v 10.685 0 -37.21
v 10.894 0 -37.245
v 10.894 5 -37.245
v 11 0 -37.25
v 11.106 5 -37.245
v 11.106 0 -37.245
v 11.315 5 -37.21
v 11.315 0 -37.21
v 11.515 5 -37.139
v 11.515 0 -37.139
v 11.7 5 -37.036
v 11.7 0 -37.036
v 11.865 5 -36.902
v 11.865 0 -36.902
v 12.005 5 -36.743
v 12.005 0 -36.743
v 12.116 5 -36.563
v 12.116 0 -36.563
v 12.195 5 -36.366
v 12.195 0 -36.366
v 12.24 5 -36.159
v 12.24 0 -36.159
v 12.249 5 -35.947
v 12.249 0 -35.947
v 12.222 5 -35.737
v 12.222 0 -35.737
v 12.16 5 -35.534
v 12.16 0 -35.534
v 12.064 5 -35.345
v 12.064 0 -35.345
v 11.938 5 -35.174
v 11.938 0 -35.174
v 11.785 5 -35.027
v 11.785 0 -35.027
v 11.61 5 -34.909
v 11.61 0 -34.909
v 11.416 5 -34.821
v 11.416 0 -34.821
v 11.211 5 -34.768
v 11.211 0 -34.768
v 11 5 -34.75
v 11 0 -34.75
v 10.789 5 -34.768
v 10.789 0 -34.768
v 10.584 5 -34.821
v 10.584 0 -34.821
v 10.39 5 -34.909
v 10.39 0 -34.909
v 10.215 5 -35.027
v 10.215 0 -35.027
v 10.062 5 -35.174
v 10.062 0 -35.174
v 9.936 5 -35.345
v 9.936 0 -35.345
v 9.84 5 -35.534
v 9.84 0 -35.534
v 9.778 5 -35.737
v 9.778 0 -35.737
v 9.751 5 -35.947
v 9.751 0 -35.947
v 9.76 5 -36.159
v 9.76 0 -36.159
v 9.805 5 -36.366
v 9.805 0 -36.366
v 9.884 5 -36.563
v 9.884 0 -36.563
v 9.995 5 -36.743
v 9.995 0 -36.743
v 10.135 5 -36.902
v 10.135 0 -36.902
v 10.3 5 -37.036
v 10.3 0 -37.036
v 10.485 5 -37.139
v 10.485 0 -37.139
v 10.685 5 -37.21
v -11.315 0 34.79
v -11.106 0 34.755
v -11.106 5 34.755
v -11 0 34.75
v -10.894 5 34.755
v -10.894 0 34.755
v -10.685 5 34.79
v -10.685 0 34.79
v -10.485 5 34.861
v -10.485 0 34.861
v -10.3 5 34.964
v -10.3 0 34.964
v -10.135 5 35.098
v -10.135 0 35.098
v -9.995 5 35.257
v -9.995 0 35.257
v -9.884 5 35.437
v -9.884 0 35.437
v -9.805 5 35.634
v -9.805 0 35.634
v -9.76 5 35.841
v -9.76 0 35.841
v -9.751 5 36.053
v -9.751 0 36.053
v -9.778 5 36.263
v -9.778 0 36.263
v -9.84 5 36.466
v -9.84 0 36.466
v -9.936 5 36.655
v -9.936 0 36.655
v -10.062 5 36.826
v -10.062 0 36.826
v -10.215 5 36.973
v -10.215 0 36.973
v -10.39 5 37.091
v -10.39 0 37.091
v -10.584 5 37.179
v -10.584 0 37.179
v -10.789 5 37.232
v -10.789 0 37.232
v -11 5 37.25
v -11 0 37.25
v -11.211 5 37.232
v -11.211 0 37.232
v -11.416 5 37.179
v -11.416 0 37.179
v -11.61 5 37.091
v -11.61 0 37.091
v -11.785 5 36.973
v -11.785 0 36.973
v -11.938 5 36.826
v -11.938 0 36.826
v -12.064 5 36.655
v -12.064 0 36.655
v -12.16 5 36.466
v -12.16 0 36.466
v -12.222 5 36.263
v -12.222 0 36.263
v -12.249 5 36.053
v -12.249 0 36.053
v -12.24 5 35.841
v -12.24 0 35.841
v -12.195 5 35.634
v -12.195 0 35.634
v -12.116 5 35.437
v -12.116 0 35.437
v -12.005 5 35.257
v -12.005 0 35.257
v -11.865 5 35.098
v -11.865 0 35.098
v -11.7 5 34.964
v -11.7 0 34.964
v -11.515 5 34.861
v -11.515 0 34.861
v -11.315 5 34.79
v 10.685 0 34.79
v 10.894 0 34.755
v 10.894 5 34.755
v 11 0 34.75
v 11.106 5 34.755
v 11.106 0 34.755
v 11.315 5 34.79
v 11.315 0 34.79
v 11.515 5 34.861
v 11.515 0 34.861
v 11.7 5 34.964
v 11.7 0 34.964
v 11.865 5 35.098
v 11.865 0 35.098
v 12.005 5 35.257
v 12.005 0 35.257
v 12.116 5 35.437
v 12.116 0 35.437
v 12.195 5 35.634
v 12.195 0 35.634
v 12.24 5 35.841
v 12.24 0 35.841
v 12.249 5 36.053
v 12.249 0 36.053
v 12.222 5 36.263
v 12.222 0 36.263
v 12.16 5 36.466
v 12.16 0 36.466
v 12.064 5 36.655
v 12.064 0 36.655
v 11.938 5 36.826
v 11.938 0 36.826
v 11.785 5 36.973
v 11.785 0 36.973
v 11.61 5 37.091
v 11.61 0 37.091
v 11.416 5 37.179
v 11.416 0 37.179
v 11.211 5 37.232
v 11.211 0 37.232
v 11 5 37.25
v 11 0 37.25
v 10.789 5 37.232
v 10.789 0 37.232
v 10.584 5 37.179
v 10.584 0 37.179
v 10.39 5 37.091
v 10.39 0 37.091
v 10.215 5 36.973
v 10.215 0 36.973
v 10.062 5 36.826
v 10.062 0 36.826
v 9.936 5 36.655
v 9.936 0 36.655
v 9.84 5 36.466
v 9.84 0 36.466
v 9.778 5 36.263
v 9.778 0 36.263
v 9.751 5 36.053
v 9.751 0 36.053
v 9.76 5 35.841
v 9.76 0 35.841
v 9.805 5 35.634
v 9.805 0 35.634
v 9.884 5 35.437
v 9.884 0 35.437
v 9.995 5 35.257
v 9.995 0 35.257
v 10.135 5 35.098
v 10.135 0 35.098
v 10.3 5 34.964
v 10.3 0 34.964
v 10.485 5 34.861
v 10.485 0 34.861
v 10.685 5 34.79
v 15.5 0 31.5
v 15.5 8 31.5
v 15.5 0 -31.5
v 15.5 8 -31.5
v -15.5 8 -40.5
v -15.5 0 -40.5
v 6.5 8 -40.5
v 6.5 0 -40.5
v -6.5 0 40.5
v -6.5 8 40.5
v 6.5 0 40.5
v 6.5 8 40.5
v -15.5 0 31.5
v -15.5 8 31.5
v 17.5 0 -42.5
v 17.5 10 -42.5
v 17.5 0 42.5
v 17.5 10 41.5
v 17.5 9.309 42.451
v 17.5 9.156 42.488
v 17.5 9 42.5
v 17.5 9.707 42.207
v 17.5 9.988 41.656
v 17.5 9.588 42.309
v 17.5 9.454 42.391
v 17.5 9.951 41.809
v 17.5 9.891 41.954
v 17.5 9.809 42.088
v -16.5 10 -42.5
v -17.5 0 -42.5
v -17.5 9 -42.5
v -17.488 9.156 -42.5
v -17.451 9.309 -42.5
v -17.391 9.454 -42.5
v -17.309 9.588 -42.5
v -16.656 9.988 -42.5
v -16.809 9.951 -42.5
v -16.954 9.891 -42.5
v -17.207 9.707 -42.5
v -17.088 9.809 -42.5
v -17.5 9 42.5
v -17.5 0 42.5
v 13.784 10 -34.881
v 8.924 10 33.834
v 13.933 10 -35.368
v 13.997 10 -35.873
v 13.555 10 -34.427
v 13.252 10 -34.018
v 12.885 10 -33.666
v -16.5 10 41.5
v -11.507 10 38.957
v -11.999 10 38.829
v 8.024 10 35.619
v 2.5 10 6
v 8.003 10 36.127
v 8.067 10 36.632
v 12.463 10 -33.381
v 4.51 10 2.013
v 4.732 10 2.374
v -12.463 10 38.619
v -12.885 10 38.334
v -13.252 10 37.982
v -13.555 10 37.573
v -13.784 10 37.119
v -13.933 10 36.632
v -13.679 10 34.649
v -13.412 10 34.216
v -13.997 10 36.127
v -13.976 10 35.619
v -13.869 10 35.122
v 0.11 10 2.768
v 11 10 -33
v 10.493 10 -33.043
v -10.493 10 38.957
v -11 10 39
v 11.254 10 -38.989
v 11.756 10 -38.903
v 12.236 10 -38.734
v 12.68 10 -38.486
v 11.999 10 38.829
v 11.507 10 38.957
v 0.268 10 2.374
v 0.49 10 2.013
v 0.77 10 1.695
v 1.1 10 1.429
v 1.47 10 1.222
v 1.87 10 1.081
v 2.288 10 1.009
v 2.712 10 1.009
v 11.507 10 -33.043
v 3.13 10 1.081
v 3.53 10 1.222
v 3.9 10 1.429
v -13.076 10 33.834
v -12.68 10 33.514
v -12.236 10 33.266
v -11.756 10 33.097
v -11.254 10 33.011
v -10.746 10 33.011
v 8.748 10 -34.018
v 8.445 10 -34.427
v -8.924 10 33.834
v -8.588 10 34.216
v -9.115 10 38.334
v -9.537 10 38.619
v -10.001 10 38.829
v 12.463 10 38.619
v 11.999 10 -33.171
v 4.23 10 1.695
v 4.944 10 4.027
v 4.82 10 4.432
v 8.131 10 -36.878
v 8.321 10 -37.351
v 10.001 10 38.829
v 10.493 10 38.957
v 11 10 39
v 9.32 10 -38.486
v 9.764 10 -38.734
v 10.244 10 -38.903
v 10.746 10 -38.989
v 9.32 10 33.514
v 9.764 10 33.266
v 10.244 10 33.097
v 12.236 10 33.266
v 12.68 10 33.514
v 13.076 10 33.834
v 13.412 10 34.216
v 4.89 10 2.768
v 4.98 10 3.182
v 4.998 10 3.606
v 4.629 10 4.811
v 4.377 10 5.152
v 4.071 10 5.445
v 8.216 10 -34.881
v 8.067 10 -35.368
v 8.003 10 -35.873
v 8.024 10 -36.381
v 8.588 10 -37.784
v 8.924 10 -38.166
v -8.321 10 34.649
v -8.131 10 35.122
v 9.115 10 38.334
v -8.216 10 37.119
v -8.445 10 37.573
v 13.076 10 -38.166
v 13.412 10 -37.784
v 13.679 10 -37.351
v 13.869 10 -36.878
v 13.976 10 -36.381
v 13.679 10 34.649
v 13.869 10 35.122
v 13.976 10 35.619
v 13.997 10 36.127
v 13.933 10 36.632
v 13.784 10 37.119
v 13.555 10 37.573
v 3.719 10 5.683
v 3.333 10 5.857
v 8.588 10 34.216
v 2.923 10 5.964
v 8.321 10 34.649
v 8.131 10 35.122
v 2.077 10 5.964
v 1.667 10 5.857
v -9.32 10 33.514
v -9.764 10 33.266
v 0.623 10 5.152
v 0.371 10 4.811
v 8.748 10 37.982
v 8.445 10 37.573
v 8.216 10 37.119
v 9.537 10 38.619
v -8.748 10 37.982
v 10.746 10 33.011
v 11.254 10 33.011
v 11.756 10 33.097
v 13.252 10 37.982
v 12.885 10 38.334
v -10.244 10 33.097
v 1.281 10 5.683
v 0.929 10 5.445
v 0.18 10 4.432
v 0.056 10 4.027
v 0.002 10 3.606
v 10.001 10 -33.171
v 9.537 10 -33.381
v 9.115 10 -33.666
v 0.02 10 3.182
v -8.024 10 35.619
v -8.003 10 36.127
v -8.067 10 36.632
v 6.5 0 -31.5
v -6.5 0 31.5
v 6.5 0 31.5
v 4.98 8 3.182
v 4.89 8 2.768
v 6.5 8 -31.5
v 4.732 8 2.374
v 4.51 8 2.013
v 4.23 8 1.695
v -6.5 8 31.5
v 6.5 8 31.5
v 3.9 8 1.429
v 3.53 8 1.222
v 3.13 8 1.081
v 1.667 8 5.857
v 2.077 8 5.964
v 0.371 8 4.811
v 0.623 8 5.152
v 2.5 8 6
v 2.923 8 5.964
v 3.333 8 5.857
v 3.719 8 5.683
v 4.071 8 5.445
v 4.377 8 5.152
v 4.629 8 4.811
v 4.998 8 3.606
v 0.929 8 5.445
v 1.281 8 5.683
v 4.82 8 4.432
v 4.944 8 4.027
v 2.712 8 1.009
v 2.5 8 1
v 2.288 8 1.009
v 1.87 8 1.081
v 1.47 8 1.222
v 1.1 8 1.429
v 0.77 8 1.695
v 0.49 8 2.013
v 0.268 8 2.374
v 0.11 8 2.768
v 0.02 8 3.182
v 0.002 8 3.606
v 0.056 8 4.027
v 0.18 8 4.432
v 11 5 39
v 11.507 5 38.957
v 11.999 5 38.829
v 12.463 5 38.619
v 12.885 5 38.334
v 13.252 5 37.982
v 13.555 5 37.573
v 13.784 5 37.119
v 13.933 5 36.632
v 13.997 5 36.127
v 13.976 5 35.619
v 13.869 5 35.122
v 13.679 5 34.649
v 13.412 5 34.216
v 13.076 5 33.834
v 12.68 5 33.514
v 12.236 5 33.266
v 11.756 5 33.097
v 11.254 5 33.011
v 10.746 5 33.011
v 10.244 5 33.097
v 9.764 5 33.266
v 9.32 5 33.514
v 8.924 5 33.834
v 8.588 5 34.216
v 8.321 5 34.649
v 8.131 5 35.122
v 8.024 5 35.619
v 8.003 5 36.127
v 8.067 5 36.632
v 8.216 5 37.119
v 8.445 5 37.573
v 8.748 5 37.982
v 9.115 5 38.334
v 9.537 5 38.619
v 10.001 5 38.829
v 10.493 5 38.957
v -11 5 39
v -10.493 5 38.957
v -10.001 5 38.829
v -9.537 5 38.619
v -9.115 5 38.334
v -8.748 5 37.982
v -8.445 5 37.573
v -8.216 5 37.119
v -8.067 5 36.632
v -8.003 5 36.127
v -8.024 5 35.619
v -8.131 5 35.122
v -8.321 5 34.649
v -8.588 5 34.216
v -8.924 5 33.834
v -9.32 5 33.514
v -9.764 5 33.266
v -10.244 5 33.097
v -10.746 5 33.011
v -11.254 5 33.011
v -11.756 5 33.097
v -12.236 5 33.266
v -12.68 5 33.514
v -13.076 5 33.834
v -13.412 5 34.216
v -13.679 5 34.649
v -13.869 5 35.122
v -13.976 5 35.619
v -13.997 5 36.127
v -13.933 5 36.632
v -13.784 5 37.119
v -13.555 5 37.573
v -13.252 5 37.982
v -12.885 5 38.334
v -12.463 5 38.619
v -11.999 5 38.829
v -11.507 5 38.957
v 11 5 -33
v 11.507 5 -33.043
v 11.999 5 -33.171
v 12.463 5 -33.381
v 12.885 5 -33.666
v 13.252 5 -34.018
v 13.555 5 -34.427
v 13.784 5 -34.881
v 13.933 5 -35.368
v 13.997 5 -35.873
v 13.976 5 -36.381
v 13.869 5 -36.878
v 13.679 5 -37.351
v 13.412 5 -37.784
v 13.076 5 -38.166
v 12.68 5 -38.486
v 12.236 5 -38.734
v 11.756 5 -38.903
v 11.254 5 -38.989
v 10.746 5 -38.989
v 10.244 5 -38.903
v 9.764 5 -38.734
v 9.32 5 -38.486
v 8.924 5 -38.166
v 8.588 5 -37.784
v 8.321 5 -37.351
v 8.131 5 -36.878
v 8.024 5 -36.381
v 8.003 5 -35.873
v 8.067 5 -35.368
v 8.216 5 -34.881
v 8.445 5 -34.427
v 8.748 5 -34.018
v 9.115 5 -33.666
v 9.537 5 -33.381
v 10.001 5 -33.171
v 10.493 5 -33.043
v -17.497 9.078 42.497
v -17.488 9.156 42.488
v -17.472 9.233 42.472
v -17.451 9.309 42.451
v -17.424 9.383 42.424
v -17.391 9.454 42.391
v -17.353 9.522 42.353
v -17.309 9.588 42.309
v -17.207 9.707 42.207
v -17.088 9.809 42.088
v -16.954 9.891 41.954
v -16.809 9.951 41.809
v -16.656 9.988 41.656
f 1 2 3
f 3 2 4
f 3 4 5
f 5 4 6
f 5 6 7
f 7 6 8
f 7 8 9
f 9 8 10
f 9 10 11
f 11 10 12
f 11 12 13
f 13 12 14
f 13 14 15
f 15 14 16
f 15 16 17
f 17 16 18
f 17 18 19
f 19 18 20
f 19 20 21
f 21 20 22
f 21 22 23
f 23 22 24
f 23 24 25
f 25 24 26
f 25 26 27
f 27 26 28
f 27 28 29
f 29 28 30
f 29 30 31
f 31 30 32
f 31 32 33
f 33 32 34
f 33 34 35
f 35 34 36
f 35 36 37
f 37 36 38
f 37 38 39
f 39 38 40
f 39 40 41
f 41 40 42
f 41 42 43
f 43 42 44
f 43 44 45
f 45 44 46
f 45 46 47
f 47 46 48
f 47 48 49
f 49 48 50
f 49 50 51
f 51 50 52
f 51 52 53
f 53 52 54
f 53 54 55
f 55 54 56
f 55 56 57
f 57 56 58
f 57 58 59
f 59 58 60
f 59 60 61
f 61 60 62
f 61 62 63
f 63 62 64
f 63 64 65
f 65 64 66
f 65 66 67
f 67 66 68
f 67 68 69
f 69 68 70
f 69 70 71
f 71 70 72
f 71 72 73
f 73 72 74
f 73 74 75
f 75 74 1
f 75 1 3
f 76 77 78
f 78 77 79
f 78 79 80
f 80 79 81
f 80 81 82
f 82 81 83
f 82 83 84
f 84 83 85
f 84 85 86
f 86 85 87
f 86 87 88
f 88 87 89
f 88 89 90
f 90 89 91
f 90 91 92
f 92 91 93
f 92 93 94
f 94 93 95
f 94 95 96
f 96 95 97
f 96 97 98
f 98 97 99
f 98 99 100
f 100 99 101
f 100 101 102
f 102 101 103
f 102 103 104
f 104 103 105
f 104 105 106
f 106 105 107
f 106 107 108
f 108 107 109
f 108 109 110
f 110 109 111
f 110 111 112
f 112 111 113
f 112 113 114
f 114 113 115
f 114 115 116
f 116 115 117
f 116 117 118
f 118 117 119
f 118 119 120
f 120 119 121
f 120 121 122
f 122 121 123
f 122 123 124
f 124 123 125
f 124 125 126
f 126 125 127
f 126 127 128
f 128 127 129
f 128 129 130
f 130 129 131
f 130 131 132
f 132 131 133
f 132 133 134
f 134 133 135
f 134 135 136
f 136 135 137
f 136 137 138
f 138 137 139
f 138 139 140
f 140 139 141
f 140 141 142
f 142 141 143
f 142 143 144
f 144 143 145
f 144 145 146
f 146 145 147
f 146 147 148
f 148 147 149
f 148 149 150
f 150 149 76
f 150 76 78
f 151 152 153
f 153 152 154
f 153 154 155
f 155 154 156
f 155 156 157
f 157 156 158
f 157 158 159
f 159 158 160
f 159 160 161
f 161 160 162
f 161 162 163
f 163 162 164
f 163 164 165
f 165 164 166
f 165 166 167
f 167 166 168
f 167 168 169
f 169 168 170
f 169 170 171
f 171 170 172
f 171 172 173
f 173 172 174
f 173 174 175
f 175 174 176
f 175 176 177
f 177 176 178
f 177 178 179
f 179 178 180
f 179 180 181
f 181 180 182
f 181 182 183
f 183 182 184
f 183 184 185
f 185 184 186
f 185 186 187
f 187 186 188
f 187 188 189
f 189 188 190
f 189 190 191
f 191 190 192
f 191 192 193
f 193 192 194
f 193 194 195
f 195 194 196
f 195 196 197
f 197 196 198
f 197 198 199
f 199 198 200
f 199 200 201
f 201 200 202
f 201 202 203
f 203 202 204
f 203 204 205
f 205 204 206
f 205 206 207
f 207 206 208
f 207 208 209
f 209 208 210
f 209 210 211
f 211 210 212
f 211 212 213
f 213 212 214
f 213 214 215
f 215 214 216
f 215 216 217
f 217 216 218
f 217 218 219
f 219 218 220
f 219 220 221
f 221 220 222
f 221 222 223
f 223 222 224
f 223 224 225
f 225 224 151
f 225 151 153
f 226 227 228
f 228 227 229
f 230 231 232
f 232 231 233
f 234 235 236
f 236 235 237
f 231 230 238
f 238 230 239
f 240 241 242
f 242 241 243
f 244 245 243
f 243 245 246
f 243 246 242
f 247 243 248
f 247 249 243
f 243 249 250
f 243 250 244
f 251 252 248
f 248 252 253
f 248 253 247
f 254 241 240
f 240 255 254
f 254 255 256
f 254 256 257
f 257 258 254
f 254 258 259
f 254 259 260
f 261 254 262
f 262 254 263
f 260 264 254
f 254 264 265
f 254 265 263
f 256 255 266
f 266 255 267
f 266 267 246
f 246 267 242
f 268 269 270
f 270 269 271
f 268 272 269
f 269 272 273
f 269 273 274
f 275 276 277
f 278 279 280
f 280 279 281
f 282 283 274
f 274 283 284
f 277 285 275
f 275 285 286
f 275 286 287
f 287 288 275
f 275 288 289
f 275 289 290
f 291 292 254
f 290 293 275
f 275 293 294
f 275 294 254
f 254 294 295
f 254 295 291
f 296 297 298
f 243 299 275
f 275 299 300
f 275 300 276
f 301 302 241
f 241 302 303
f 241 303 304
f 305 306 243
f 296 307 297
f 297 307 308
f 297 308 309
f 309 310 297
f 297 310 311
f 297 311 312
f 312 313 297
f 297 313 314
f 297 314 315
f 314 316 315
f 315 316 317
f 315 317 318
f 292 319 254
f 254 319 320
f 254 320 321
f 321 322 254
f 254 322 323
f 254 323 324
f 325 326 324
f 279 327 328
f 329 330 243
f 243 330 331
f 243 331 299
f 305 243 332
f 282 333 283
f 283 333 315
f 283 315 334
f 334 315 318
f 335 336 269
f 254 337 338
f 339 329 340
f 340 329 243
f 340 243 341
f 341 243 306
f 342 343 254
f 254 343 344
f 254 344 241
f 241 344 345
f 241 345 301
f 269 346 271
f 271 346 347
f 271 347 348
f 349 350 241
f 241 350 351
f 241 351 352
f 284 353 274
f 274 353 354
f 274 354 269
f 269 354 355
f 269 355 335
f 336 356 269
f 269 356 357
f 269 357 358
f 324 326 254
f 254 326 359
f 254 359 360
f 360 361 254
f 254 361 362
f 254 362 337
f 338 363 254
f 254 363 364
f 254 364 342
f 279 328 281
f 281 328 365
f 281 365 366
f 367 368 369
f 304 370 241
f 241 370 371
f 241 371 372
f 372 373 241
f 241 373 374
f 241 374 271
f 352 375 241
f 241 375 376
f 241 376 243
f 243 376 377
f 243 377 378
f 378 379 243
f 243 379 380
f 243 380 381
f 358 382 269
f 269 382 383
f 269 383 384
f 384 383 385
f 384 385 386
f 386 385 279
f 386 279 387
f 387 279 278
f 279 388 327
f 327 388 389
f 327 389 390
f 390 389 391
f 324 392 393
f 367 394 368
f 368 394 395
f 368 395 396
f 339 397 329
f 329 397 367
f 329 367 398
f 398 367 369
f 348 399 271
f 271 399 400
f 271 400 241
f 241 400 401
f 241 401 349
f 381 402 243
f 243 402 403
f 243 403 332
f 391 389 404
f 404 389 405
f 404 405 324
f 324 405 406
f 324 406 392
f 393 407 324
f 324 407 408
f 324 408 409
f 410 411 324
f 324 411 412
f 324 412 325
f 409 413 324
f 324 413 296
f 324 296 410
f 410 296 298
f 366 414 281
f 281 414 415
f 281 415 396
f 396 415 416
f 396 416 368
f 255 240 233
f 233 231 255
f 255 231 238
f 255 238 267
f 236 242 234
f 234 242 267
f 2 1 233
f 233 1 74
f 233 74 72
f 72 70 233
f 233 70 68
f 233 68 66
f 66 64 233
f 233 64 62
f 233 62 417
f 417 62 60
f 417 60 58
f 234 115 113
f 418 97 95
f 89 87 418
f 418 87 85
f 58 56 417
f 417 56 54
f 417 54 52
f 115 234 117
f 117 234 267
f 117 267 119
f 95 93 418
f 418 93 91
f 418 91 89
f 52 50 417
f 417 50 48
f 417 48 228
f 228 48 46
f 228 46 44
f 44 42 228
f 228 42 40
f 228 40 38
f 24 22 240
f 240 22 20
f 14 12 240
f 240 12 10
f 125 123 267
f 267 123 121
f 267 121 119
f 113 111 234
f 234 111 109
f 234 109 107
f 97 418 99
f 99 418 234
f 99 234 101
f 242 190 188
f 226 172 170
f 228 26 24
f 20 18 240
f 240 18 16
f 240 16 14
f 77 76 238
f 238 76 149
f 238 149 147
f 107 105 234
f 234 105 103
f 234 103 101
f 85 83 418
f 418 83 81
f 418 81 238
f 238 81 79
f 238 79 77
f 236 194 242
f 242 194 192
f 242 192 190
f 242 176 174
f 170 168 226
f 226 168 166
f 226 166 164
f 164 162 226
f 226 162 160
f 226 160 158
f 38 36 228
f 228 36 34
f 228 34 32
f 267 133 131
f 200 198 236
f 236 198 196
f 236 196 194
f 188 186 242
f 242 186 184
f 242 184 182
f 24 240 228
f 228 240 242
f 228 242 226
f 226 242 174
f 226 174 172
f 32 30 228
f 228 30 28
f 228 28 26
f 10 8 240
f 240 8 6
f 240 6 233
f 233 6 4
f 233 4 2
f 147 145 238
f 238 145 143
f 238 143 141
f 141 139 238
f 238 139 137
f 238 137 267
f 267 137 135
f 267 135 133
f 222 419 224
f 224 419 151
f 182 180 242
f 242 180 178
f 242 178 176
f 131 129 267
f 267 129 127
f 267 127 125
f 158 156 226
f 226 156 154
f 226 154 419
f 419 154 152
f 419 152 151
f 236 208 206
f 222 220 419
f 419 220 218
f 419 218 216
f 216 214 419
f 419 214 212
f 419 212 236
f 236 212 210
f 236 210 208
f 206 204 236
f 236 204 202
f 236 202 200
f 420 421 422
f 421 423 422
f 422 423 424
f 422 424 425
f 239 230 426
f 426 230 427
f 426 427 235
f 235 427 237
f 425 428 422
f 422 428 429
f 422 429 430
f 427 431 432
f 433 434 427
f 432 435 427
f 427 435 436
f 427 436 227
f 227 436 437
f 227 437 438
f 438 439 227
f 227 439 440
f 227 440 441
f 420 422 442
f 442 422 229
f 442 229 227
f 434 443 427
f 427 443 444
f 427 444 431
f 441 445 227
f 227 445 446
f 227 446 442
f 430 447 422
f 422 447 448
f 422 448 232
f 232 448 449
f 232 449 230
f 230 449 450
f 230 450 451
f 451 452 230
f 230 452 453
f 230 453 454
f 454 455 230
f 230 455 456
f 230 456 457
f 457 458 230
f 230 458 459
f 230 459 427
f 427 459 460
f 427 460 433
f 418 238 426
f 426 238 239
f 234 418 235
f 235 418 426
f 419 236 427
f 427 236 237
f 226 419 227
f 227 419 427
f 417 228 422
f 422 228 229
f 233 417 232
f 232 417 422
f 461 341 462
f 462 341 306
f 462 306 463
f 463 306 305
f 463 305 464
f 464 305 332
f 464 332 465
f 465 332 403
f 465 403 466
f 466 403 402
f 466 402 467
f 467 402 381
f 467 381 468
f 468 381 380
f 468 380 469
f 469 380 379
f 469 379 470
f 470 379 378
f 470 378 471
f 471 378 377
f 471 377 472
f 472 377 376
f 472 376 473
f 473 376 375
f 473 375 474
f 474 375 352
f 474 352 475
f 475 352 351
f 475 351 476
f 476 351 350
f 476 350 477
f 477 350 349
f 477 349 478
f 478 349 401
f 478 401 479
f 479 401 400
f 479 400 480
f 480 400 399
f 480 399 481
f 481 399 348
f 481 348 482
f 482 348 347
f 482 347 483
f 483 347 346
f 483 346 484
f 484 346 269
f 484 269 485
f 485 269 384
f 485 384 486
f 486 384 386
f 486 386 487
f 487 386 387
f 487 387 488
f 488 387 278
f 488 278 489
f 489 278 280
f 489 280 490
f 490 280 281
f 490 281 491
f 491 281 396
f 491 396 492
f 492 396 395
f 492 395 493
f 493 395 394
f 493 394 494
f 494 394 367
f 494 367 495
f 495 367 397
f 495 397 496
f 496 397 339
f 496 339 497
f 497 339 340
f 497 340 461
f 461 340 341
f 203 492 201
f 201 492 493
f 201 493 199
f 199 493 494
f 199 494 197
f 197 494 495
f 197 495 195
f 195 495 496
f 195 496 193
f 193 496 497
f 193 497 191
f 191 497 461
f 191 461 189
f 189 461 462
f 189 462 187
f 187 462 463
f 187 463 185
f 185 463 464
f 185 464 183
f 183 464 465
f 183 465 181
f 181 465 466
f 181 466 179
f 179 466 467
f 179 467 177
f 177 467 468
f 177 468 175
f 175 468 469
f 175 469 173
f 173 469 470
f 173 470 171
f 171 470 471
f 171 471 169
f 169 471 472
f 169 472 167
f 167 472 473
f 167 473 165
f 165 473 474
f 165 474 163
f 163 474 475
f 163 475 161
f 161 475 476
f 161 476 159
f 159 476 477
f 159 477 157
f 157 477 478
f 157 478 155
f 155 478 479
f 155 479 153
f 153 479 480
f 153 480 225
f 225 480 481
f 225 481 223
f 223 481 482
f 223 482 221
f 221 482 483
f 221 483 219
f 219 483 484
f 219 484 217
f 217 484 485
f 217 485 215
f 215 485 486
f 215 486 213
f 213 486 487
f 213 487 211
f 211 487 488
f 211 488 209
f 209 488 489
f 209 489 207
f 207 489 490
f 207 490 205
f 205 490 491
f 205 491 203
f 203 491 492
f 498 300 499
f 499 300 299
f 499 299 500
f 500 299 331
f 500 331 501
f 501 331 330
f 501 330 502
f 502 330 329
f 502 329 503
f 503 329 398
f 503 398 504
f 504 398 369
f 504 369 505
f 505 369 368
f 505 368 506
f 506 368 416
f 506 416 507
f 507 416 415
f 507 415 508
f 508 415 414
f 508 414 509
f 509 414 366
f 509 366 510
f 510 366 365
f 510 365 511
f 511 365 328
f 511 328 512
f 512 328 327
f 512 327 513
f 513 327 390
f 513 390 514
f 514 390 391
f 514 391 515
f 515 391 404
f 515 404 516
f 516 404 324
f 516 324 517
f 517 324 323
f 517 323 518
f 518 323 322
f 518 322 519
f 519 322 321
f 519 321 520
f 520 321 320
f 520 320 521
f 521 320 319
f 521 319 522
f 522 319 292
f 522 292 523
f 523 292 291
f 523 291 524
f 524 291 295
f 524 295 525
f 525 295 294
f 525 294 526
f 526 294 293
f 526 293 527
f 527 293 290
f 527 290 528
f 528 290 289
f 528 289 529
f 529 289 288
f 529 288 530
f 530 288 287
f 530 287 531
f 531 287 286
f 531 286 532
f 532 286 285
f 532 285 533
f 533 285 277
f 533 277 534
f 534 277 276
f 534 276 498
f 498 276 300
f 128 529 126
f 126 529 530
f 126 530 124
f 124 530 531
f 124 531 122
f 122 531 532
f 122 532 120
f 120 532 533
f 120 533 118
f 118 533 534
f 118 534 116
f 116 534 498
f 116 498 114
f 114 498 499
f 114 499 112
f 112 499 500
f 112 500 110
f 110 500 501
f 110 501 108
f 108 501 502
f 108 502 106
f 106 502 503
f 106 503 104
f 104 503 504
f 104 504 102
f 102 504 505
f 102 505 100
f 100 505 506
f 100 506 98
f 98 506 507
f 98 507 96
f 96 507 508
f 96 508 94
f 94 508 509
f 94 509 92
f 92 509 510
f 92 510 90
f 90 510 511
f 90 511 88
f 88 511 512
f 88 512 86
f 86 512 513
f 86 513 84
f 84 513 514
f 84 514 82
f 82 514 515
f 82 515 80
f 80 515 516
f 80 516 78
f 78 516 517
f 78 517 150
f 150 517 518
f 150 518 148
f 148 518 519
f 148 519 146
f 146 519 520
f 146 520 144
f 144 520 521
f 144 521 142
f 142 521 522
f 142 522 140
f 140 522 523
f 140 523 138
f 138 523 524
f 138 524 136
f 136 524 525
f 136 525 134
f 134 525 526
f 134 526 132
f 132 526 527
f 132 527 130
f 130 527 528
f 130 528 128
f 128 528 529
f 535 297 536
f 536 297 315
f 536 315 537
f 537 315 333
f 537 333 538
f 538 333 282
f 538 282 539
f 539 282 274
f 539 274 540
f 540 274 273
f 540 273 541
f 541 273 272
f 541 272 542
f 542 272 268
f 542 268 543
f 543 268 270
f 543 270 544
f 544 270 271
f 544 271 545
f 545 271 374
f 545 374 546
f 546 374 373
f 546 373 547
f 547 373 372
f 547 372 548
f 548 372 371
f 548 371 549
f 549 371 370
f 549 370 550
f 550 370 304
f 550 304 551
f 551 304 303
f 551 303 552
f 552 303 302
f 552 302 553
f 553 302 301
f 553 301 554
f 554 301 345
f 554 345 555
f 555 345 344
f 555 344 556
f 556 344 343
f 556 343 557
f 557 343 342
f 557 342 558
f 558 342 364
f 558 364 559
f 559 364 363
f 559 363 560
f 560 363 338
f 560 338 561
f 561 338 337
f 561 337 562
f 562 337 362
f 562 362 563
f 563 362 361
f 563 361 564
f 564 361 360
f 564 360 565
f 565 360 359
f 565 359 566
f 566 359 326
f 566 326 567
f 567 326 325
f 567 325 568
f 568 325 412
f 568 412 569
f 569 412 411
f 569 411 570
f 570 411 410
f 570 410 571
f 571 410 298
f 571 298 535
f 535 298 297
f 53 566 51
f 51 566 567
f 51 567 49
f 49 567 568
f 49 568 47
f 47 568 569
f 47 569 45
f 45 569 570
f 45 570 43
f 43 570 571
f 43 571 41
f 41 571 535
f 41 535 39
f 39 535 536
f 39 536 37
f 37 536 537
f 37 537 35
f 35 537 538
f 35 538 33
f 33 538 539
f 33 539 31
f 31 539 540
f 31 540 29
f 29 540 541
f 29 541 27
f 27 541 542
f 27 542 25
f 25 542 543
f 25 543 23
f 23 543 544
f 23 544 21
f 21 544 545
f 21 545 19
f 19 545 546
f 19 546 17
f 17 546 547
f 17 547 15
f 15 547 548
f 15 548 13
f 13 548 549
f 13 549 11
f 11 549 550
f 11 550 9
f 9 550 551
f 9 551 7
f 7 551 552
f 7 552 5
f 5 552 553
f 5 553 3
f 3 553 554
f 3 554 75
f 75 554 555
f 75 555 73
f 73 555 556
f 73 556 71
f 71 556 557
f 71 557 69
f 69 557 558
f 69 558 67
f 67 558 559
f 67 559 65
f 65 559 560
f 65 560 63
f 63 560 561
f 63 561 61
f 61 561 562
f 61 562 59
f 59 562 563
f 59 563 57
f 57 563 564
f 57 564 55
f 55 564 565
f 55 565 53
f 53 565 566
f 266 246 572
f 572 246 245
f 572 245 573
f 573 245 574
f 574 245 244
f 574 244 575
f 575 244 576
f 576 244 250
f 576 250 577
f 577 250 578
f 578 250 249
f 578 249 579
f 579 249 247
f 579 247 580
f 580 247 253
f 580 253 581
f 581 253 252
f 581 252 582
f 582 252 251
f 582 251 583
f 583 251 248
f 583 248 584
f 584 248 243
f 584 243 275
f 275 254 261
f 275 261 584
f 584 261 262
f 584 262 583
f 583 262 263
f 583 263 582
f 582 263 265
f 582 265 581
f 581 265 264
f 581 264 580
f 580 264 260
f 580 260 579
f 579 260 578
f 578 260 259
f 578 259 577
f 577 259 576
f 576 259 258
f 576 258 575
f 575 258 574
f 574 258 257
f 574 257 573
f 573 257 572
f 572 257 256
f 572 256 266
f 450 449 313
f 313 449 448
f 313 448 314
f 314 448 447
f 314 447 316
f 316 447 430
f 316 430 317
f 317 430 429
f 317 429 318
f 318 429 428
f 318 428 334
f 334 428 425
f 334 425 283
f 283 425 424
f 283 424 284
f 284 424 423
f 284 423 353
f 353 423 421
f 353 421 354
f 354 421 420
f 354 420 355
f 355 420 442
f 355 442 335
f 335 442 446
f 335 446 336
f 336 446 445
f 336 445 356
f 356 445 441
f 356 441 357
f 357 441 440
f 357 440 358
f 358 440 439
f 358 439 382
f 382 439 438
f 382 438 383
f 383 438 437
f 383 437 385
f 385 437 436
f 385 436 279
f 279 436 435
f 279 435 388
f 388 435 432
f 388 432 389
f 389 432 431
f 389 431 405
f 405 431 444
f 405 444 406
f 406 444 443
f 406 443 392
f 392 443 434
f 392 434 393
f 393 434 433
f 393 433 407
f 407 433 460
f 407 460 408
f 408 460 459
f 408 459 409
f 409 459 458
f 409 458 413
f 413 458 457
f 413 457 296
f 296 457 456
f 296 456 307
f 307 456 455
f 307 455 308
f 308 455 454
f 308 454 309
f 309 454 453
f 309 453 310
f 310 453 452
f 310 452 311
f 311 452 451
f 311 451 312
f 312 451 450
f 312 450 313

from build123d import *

# Parameters (mm, degrees)
SKETCH1_W           = 35
SKETCH1_H           = 85
BOSS_EXTRUDE1_DEPTH = 10
SKETCH2_W           = 31
SKETCH2_H           = 81
CUT_EXTRUDE1_DEPTH  = 8
SKETCH3_W           = 9
SKETCH3_H           = 9
SKETCH3_R           = 1.25
BOSS_EXTRUDE2_DEPTH = 8
CUT_EXTRUDE3_START  = -10
SKETCH4_R           = 1.25
CUT_EXTRUDE3_DEPTH  = 10
SKETCH5_R           = 3
CUT_EXTRUDE4_DEPTH  = 5
FILLET1_R           = 1
SKETCH6_R           = 2.5
CUT_EXTRUDE5_DEPTH  = 5


with BuildPart() as part:
    # Sketch1 → Boss-Extrude1 (new body)
    with BuildSketch(Plane(origin=(0, 0, 0), x_dir=(1, 0, 0), z_dir=(0, 1, 0))):
        Rectangle(SKETCH1_W, SKETCH1_H)
    extrude(amount=BOSS_EXTRUDE1_DEPTH)

    # Sketch2 → Cut-Extrude1 (cut)
    with BuildSketch(Plane.XZ):
        Rectangle(SKETCH2_W, SKETCH2_H)
    extrude(amount=-CUT_EXTRUDE1_DEPTH, mode=Mode.SUBTRACT)

    # Sketch3 → Boss-Extrude2 (add)
    # profile 1 of 3: a face of its own
    with BuildSketch(Plane.XZ.offset(-8)):
        with Locations((-11, 36)):
            Rectangle(SKETCH3_W, SKETCH3_H)
        with Locations(Location((-11, 36, 0), (0, 0, 270))):
            Circle(SKETCH3_R, mode=Mode.SUBTRACT)
    # profile 2 of 3: a face of its own
    with BuildSketch(Plane.XZ.offset(-8)):
        with Locations((11, 36)):
            Rectangle(SKETCH3_W, SKETCH3_H)
        with Locations(Location((11, 36, 0), (0, 0, 270))):
            Circle(SKETCH3_R, mode=Mode.SUBTRACT)
    # profile 3 of 3: a face of its own
    with BuildSketch(Plane.XZ.offset(-8)):
        with Locations((11, -36)):
            Rectangle(SKETCH3_W, SKETCH3_H)
        with Locations(Location((11, -36, 0), (0, 0, 270))):
            Circle(SKETCH3_R, mode=Mode.SUBTRACT)
    extrude(amount=BOSS_EXTRUDE2_DEPTH)

    # Sketch4 → Cut-Extrude3 (cut)
    with BuildSketch(Plane.XZ.offset(CUT_EXTRUDE3_START)):
        with Locations(Location((-11, 36, 0), (0, 0, 270))):
            Circle(SKETCH4_R)
        with Locations(Location((11, 36, 0), (0, 0, 270))):
            Circle(SKETCH4_R)
        with Locations(Location((11, -36, 0), (0, 0, 270))):
            Circle(SKETCH4_R)
    extrude(amount=CUT_EXTRUDE3_DEPTH, mode=Mode.SUBTRACT)

    # Sketch5 → Cut-Extrude4 (cut)
    with BuildSketch(Plane(origin=(0, 10, 0), x_dir=(1, 0, 0), z_dir=(0, 1, 0))):
        with Locations(Location((11, -36, 0), (0, 0, 270))):
            Circle(SKETCH5_R)
        with Locations(Location((-11, -36, 0), (0, 0, 270))):
            Circle(SKETCH5_R)
        with Locations(Location((11, 36, 0), (0, 0, 270))):
            Circle(SKETCH5_R)
    extrude(amount=-CUT_EXTRUDE4_DEPTH, mode=Mode.SUBTRACT)

    # Fillet1
    fillet1_edges = [part.edges().sort_by_distance(p)[0] for p in [
        (-17.5, 10, 0),
        (0, 10, 42.5),
    ]]
    fillet(fillet1_edges, radius=FILLET1_R)

    # Sketch6 → Cut-Extrude5 (cut)
    with BuildSketch(Plane(origin=(0, 10, 0), x_dir=(1, 0, 0), z_dir=(0, 1, 0))):
        with Locations(Location((2.5, -3.5, 0), (0, 0, 270))):
            Circle(SKETCH6_R)
    extrude(amount=-CUT_EXTRUDE5_DEPTH, mode=Mode.SUBTRACT)


solid = part.part
